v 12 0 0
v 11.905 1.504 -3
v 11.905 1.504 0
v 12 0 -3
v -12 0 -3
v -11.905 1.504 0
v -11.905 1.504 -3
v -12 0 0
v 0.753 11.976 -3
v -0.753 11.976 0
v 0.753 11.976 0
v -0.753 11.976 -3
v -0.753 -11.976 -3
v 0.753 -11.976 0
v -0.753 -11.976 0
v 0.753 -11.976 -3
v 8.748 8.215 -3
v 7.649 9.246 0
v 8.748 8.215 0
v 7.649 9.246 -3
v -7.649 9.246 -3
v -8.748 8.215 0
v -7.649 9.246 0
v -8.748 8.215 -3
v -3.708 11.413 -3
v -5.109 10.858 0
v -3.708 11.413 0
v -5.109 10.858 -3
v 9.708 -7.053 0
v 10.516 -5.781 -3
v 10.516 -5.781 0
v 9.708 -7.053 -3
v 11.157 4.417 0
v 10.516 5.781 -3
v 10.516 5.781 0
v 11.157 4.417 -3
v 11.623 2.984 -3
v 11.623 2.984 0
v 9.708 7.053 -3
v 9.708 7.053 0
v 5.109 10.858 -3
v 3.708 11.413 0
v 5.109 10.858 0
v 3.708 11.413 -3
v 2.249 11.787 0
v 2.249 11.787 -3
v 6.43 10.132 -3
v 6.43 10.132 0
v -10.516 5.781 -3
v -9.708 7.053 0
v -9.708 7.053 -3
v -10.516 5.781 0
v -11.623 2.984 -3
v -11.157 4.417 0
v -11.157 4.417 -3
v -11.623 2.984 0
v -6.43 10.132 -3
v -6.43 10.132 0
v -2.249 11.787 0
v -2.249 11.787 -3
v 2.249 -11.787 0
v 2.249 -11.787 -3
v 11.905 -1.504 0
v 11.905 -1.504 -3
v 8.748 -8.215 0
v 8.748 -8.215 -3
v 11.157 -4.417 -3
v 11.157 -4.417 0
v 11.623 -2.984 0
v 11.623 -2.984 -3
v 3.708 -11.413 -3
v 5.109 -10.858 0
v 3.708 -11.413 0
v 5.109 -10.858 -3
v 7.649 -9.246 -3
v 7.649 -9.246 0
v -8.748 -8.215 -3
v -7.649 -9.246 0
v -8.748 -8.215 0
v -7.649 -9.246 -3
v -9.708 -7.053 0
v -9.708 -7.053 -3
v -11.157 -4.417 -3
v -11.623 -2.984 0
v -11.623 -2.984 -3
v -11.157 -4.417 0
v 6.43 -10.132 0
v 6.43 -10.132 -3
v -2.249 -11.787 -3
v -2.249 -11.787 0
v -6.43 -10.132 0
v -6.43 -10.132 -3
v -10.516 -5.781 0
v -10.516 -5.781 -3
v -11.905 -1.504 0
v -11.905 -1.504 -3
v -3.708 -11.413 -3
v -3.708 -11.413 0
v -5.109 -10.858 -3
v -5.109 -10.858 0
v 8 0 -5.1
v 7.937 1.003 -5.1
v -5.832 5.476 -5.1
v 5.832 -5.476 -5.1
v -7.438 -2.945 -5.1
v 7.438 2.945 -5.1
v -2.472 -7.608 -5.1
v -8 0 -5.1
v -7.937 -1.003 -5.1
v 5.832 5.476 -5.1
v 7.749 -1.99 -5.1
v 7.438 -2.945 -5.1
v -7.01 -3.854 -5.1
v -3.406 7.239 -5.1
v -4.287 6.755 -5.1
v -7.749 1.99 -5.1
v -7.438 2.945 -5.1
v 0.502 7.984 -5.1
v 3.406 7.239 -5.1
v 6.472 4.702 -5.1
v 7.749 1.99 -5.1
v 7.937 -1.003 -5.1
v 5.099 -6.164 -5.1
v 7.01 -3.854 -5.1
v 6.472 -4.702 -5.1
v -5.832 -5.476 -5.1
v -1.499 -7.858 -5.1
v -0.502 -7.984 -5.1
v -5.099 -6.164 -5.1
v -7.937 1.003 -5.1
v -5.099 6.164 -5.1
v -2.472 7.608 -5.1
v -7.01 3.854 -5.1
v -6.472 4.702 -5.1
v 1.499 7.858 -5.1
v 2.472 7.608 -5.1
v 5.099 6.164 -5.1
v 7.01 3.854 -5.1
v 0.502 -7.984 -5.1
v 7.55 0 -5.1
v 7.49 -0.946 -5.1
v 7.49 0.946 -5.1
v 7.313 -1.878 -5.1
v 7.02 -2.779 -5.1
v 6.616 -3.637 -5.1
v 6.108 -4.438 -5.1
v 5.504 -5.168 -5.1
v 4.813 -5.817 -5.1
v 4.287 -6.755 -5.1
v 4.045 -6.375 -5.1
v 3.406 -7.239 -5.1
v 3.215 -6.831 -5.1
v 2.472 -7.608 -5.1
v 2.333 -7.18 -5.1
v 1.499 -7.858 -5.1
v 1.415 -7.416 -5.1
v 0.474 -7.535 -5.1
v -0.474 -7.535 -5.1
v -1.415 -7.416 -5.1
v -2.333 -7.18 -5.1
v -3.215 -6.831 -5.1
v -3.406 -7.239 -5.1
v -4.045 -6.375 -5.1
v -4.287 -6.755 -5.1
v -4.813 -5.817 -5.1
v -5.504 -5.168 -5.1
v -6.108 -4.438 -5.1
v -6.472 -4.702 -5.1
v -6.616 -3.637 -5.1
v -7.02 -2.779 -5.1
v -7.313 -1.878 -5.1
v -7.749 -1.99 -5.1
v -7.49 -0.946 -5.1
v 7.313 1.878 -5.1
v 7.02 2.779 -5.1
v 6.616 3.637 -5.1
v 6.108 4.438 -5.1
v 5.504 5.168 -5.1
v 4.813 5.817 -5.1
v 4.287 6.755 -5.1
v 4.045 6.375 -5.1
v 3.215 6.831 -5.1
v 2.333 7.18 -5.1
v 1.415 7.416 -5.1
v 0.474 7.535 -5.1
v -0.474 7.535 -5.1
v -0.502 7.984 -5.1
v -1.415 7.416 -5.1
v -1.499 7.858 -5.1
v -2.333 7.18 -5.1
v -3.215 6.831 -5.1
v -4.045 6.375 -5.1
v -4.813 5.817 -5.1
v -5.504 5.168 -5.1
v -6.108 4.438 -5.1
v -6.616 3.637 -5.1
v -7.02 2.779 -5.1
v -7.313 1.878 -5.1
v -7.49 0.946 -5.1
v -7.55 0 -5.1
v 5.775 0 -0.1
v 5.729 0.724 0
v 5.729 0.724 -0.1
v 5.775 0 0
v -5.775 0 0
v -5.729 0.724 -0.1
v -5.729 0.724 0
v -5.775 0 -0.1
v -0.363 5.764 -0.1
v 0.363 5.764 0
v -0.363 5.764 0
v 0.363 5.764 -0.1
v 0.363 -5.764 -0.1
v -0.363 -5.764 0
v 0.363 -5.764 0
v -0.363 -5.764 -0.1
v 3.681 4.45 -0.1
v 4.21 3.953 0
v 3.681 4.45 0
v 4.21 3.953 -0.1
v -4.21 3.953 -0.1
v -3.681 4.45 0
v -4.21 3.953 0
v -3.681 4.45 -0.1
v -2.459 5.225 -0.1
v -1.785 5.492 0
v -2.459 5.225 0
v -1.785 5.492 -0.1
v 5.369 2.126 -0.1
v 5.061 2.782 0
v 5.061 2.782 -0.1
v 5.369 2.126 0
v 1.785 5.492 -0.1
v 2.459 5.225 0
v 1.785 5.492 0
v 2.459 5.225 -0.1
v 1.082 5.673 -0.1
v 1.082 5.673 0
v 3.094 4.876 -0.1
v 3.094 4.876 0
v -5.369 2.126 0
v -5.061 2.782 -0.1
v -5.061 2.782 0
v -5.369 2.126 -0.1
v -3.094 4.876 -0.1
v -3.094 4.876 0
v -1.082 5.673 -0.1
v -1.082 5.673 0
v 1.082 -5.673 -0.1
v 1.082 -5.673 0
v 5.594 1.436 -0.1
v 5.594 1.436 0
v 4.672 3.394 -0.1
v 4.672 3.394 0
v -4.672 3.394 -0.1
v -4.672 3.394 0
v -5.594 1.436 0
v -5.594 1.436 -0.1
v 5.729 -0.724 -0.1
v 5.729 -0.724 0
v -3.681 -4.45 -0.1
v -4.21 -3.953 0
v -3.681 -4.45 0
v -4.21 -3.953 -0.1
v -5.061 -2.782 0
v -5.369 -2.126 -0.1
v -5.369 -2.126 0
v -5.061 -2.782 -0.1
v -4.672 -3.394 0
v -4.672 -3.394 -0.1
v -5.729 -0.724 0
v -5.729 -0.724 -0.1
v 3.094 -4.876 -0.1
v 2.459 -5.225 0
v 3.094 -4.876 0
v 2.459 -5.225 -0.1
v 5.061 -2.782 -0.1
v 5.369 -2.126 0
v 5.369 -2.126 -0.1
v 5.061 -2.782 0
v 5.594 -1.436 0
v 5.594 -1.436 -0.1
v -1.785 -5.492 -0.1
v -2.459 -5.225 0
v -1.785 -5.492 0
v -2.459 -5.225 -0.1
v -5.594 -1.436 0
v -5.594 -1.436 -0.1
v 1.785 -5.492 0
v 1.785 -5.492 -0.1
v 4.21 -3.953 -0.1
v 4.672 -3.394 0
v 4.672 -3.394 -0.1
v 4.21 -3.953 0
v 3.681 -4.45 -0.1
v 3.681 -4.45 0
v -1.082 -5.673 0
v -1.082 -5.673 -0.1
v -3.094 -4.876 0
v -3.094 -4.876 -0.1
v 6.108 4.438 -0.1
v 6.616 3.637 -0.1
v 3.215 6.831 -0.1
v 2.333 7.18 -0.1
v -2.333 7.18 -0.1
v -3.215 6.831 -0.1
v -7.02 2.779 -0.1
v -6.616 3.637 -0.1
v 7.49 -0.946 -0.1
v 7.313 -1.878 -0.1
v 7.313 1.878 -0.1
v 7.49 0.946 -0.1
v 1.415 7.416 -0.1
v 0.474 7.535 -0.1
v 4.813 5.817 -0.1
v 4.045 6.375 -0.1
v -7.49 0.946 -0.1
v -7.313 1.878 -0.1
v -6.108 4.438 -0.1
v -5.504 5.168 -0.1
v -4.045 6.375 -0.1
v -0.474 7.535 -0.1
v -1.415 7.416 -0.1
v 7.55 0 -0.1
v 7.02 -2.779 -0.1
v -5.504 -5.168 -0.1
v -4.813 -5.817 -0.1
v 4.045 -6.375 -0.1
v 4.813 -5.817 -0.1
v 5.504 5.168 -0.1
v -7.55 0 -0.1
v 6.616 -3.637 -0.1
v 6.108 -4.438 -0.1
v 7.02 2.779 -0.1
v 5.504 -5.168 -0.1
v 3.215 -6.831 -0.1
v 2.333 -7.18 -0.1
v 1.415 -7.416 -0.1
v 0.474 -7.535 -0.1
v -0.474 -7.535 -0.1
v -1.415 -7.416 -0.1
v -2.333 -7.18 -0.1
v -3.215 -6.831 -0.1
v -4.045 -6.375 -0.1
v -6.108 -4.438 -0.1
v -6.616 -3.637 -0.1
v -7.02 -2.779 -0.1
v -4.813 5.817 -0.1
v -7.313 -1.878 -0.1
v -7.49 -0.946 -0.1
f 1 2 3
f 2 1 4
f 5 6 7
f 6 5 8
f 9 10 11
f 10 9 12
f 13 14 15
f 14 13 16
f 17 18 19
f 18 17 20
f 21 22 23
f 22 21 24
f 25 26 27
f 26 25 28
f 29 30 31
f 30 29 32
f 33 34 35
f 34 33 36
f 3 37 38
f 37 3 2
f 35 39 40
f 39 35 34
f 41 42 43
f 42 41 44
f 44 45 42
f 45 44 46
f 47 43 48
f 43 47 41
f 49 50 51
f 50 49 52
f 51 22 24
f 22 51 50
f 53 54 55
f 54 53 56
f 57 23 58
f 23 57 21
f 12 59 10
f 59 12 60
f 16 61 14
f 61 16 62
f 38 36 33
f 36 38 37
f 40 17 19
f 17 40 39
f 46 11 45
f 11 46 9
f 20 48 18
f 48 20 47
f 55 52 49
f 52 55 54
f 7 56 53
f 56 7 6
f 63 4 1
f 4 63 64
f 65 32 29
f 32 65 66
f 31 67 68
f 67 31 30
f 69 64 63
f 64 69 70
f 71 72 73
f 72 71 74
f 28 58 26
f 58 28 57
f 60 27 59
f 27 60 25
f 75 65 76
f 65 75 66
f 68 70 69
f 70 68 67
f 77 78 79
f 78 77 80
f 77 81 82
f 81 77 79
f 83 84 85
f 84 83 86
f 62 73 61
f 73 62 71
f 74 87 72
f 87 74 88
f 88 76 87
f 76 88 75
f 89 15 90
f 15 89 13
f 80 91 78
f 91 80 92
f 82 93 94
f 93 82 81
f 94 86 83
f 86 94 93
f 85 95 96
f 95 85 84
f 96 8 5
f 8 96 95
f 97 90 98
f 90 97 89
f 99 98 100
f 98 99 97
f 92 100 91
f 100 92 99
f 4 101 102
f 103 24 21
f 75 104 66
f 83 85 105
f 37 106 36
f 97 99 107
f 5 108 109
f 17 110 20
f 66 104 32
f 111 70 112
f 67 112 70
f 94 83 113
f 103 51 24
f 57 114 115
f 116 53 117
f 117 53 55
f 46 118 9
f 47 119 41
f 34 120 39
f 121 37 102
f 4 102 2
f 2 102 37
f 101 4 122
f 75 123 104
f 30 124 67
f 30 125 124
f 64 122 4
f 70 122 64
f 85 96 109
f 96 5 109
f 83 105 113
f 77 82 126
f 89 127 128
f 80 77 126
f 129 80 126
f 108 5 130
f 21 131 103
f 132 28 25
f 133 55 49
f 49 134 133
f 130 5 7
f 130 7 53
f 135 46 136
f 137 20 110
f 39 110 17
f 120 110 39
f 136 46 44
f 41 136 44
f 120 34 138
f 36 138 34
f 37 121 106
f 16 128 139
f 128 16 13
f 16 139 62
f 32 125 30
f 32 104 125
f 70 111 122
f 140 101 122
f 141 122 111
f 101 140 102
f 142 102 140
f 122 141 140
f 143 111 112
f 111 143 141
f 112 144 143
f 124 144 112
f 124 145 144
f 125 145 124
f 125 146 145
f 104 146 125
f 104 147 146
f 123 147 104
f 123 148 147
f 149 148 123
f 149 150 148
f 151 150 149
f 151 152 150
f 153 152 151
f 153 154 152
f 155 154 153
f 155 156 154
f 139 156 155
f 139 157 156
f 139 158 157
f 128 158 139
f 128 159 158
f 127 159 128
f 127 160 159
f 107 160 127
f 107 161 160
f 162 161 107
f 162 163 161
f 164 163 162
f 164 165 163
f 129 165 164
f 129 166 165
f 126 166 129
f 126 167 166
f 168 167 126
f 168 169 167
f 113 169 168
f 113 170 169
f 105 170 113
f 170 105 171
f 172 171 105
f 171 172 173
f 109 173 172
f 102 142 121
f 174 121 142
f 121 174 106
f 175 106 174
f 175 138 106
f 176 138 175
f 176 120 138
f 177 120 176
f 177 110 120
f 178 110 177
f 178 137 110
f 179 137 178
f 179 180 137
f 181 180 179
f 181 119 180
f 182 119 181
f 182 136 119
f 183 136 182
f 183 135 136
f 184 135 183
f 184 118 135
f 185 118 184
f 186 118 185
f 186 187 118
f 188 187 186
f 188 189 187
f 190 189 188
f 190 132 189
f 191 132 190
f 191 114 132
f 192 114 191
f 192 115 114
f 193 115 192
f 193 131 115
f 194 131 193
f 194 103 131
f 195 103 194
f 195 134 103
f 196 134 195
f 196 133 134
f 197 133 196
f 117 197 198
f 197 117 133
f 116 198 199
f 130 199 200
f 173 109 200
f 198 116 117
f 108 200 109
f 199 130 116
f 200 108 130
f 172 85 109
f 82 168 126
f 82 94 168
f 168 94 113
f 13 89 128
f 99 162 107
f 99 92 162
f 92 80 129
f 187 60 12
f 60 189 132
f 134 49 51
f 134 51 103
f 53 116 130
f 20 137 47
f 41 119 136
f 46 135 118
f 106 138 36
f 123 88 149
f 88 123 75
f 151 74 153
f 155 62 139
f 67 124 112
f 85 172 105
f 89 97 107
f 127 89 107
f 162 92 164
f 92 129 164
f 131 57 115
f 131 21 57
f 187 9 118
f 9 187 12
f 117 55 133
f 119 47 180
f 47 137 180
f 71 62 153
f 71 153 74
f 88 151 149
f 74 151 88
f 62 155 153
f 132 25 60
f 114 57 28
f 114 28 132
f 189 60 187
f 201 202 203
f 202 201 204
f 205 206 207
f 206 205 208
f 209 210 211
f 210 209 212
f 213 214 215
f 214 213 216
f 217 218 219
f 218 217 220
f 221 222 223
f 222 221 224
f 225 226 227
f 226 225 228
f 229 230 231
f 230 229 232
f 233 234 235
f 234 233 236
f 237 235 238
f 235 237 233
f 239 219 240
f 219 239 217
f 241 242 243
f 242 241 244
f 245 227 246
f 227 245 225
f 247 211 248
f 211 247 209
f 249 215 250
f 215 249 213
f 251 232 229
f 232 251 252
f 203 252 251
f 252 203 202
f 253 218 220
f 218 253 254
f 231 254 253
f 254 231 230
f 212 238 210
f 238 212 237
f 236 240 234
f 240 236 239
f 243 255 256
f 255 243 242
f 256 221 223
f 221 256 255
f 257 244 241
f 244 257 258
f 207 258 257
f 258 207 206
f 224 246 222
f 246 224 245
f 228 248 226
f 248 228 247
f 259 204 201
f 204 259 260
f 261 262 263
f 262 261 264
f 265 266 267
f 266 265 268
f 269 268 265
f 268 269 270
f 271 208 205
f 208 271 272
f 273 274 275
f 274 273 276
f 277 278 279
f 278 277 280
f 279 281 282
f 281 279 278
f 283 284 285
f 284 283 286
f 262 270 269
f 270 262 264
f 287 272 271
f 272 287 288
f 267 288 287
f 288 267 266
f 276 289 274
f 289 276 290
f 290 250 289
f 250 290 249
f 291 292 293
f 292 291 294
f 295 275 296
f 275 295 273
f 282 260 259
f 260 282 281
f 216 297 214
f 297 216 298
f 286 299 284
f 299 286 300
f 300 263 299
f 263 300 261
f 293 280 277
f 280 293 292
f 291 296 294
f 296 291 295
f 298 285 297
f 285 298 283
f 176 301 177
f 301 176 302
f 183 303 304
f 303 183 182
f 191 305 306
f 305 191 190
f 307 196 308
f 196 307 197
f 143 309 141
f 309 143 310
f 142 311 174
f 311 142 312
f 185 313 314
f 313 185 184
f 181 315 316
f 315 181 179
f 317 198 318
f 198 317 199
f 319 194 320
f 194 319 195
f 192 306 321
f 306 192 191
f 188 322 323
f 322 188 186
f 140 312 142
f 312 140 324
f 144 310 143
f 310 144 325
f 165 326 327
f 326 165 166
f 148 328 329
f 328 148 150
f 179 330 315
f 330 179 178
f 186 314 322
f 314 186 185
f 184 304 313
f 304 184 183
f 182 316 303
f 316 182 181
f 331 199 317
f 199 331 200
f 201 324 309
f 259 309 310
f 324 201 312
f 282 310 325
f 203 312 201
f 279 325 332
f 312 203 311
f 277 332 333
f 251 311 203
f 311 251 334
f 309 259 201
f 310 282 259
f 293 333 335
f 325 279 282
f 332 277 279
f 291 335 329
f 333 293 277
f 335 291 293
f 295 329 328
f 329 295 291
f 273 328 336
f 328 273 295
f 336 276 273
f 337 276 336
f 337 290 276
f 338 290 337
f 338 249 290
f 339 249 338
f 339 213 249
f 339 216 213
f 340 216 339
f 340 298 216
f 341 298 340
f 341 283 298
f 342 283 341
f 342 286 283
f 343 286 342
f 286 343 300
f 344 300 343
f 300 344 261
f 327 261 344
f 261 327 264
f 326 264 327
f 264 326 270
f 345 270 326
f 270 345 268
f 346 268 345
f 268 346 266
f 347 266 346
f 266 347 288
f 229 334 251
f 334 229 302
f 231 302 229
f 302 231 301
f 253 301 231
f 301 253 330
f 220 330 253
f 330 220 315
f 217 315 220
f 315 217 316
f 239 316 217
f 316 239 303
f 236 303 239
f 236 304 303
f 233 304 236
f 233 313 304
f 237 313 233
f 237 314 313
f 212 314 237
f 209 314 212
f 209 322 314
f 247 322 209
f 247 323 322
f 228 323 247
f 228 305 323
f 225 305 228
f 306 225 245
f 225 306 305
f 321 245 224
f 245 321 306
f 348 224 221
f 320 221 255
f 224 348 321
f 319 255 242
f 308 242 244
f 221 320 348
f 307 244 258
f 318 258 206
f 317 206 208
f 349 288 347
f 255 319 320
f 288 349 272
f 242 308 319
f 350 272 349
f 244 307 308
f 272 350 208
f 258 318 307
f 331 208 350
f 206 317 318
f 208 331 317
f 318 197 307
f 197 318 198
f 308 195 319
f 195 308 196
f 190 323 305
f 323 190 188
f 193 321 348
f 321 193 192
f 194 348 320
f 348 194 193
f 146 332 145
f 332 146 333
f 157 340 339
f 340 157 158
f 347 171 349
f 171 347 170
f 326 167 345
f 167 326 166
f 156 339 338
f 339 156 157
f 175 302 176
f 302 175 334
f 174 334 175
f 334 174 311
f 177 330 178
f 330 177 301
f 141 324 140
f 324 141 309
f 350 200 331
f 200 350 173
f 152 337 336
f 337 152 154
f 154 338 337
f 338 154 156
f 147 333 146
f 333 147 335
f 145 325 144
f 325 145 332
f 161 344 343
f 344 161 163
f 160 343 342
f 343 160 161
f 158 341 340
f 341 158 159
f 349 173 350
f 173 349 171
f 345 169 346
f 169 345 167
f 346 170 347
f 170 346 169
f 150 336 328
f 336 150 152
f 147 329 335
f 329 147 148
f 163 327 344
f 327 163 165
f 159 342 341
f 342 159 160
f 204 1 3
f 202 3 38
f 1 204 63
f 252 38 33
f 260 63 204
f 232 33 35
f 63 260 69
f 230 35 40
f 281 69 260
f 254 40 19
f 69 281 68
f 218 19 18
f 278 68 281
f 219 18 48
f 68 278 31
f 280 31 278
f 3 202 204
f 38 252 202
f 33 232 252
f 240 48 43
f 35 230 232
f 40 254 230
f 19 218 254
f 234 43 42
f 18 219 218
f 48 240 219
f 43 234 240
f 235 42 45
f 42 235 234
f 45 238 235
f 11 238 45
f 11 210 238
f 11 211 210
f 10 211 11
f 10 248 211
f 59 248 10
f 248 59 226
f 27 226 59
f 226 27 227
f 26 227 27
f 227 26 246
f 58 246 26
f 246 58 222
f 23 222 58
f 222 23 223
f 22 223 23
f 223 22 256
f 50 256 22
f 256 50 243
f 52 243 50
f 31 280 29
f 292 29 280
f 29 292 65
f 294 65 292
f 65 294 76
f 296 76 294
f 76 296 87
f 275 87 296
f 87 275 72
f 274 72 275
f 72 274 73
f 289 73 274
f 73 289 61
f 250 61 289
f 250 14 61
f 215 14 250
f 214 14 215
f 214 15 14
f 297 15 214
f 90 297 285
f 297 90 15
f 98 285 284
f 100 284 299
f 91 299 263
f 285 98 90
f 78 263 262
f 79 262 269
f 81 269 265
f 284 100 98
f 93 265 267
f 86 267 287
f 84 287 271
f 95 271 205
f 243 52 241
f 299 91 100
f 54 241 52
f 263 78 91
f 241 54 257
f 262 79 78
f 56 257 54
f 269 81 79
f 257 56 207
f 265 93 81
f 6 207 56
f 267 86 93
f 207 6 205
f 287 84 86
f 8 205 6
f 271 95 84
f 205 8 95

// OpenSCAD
$fn = 50;


difference() {
	union() {
		*color(alpha = 1.0000000000, c = "gray") {
			translate(v = [0, 14, 0]) {
				linear_extrude(height = 1) {
					text(font = "Arial:style=Bold", halign = "center", size = 4.5000000000, text = "COMMENT description oobb_cylinder_shape_positive_type_6_depth_10.2_thickness_24_diameter_bearing_twenty_twenty_aluminium_extrusion_extra_696_bearing_true_both_holes_0_0_-5.1_pos_plate_12.0_radius", valign = "center");
				}
			}
		}
		translate(v = [0, 0, -3.0000000000]) {
			cylinder(h = 6, r = 12.0000000000);
		}
		*color(alpha = 1.0000000000, c = "gray") {
			translate(v = [0, 14, 4.0500000000]) {
				linear_extrude(height = 1) {
					text(font = "Arial:style=Bold", halign = "center", size = 4.5000000000, text = "COMMENT description oobb_cylinder_shape_positive_type_2.0999999999999996_depth_0_0_4.05_pos_10.2_thickness_24_diameter_bearing_twenty_twenty_aluminium_extrusion_extra_696_bearing_true_both_holes_0_0_-5.1_pos_plate_12.0_r1_8.0_r2", valign = "center");
				}
			}
		}
		translate(v = [0, 0, 3.0000000000]) {
			cylinder(h = 2.1000000000, r1 = 12.0000000000, r2 = 8.0000000000);
		}
		*color(alpha = 1.0000000000, c = "gray") {
			translate(v = [0, 14, -4.0500000000]) {
				linear_extrude(height = 1) {
					text(font = "Arial:style=Bold", halign = "center", size = 4.5000000000, text = "COMMENT description oobb_cylinder_shape_positive_type_2.0999999999999996_depth_0_0_-4.05_pos_10.2_thickness_24_diameter_bearing_twenty_twenty_aluminium_extrusion_extra_696_bearing_true_both_holes_0_0_-5.1_pos_plate_8.0_r1_12.0_r2", valign = "center");
				}
			}
		}
		translate(v = [0, 0, -5.1000000000]) {
			cylinder(h = 2.1000000000, r1 = 8.0000000000, r2 = 12.0000000000);
		}
	}
	union() {
		*color(alpha = 1.0000000000, c = "gray") {
			translate(v = [0, 14, 0]) {
				linear_extrude(height = 1) {
					text(font = "Arial:style=Bold", halign = "center", size = 4.5000000000, text = "COMMENT description oobb_hole_shape_negative_type_10.2_thickness_24_diameter_bearing_twenty_twenty_aluminium_extrusion_extra_696_bearing_true_both_holes_0_0_-5.1_pos_plate_5_radius", valign = "center");
				}
			}
		}
		translate(v = [0, 0, -50.0000000000]) {
			cylinder(h = 100, r = 5);
		}
		*color(alpha = 1.0000000000, c = "gray") {
			translate(v = [0, 14, 5.1000000000]) {
				linear_extrude(height = 1) {
					text(font = "Arial:style=Bold", halign = "center", size = 4.5000000000, text = "COMMENT description oobb_bearing_shape_negative_type_0_0_5.1_pos_10.2_thickness_24_diameter_bearing_twenty_twenty_aluminium_extrusion_extra_696_bearing_true_both_holes_0_0_-5.1_pos_plate_top_zz", valign = "center");
				}
			}
		}
		translate(v = [0, 0, 2.6000000000]) {
			translate(v = [0, 0, -2.5000000000]) {
				union() {
					difference() {
						cylinder(h = 5, r = 7.5500000000);
						cylinder(h = 5, r = 3.0000000000);
					}
					difference() {
						translate(v = [0, 0, -50]) {
							cylinder(h = 100, r = 5.7750000000);
						}
					}
				}
			}
		}
		*color(alpha = 1.0000000000, c = "gray") {
			translate(v = [0, 14, -5.1000000000]) {
				linear_extrude(height = 1) {
					text(font = "Arial:style=Bold", halign = "center", size = 4.5000000000, text = "COMMENT description oobb_bearing_shape_negative_type_0_0_-5.1_pos_10.2_thickness_24_diameter_bearing_twenty_twenty_aluminium_extrusion_extra_696_bearing_true_both_holes_0_0_-5.1_pos_plate_bottom_zz", valign = "center");
				}
			}
		}
		translate(v = [0, 0, -2.6000000000]) {
			translate(v = [0, 0, -2.5000000000]) {
				union() {
					difference() {
						cylinder(h = 5, r = 7.5500000000);
						cylinder(h = 5, r = 3.0000000000);
					}
					difference() {
						translate(v = [0, 0, -50]) {
							cylinder(h = 100, r = 5.7750000000);
						}
					}
				}
			}
		}
		*color(alpha = 1.0000000000, c = "gray") {
			translate(v = [0, 14, 0]) {
				linear_extrude(height = 1) {
					text(font = "Arial:style=Bold", halign = "center", size = 4.5000000000, text = "COMMENT description oobb_slice_shape_negative_type_10.2_thickness_24_diameter_bearing_twenty_twenty_aluminium_extrusion_extra_696_bearing_true_both_holes_0_0_-5.1_pos_plate", valign = "center");
				}
			}
		}
		translate(v = [-250, -250, 0]) {
			cube(size = [500, 500, 500]);
		}
		translate(v = [-250, -250, 0]) {
			cube(size = [500, 500, 500]);
		}
		translate(v = [-250, -250, 0]) {
			cube(size = [500, 500, 500]);
		}
	}
}
